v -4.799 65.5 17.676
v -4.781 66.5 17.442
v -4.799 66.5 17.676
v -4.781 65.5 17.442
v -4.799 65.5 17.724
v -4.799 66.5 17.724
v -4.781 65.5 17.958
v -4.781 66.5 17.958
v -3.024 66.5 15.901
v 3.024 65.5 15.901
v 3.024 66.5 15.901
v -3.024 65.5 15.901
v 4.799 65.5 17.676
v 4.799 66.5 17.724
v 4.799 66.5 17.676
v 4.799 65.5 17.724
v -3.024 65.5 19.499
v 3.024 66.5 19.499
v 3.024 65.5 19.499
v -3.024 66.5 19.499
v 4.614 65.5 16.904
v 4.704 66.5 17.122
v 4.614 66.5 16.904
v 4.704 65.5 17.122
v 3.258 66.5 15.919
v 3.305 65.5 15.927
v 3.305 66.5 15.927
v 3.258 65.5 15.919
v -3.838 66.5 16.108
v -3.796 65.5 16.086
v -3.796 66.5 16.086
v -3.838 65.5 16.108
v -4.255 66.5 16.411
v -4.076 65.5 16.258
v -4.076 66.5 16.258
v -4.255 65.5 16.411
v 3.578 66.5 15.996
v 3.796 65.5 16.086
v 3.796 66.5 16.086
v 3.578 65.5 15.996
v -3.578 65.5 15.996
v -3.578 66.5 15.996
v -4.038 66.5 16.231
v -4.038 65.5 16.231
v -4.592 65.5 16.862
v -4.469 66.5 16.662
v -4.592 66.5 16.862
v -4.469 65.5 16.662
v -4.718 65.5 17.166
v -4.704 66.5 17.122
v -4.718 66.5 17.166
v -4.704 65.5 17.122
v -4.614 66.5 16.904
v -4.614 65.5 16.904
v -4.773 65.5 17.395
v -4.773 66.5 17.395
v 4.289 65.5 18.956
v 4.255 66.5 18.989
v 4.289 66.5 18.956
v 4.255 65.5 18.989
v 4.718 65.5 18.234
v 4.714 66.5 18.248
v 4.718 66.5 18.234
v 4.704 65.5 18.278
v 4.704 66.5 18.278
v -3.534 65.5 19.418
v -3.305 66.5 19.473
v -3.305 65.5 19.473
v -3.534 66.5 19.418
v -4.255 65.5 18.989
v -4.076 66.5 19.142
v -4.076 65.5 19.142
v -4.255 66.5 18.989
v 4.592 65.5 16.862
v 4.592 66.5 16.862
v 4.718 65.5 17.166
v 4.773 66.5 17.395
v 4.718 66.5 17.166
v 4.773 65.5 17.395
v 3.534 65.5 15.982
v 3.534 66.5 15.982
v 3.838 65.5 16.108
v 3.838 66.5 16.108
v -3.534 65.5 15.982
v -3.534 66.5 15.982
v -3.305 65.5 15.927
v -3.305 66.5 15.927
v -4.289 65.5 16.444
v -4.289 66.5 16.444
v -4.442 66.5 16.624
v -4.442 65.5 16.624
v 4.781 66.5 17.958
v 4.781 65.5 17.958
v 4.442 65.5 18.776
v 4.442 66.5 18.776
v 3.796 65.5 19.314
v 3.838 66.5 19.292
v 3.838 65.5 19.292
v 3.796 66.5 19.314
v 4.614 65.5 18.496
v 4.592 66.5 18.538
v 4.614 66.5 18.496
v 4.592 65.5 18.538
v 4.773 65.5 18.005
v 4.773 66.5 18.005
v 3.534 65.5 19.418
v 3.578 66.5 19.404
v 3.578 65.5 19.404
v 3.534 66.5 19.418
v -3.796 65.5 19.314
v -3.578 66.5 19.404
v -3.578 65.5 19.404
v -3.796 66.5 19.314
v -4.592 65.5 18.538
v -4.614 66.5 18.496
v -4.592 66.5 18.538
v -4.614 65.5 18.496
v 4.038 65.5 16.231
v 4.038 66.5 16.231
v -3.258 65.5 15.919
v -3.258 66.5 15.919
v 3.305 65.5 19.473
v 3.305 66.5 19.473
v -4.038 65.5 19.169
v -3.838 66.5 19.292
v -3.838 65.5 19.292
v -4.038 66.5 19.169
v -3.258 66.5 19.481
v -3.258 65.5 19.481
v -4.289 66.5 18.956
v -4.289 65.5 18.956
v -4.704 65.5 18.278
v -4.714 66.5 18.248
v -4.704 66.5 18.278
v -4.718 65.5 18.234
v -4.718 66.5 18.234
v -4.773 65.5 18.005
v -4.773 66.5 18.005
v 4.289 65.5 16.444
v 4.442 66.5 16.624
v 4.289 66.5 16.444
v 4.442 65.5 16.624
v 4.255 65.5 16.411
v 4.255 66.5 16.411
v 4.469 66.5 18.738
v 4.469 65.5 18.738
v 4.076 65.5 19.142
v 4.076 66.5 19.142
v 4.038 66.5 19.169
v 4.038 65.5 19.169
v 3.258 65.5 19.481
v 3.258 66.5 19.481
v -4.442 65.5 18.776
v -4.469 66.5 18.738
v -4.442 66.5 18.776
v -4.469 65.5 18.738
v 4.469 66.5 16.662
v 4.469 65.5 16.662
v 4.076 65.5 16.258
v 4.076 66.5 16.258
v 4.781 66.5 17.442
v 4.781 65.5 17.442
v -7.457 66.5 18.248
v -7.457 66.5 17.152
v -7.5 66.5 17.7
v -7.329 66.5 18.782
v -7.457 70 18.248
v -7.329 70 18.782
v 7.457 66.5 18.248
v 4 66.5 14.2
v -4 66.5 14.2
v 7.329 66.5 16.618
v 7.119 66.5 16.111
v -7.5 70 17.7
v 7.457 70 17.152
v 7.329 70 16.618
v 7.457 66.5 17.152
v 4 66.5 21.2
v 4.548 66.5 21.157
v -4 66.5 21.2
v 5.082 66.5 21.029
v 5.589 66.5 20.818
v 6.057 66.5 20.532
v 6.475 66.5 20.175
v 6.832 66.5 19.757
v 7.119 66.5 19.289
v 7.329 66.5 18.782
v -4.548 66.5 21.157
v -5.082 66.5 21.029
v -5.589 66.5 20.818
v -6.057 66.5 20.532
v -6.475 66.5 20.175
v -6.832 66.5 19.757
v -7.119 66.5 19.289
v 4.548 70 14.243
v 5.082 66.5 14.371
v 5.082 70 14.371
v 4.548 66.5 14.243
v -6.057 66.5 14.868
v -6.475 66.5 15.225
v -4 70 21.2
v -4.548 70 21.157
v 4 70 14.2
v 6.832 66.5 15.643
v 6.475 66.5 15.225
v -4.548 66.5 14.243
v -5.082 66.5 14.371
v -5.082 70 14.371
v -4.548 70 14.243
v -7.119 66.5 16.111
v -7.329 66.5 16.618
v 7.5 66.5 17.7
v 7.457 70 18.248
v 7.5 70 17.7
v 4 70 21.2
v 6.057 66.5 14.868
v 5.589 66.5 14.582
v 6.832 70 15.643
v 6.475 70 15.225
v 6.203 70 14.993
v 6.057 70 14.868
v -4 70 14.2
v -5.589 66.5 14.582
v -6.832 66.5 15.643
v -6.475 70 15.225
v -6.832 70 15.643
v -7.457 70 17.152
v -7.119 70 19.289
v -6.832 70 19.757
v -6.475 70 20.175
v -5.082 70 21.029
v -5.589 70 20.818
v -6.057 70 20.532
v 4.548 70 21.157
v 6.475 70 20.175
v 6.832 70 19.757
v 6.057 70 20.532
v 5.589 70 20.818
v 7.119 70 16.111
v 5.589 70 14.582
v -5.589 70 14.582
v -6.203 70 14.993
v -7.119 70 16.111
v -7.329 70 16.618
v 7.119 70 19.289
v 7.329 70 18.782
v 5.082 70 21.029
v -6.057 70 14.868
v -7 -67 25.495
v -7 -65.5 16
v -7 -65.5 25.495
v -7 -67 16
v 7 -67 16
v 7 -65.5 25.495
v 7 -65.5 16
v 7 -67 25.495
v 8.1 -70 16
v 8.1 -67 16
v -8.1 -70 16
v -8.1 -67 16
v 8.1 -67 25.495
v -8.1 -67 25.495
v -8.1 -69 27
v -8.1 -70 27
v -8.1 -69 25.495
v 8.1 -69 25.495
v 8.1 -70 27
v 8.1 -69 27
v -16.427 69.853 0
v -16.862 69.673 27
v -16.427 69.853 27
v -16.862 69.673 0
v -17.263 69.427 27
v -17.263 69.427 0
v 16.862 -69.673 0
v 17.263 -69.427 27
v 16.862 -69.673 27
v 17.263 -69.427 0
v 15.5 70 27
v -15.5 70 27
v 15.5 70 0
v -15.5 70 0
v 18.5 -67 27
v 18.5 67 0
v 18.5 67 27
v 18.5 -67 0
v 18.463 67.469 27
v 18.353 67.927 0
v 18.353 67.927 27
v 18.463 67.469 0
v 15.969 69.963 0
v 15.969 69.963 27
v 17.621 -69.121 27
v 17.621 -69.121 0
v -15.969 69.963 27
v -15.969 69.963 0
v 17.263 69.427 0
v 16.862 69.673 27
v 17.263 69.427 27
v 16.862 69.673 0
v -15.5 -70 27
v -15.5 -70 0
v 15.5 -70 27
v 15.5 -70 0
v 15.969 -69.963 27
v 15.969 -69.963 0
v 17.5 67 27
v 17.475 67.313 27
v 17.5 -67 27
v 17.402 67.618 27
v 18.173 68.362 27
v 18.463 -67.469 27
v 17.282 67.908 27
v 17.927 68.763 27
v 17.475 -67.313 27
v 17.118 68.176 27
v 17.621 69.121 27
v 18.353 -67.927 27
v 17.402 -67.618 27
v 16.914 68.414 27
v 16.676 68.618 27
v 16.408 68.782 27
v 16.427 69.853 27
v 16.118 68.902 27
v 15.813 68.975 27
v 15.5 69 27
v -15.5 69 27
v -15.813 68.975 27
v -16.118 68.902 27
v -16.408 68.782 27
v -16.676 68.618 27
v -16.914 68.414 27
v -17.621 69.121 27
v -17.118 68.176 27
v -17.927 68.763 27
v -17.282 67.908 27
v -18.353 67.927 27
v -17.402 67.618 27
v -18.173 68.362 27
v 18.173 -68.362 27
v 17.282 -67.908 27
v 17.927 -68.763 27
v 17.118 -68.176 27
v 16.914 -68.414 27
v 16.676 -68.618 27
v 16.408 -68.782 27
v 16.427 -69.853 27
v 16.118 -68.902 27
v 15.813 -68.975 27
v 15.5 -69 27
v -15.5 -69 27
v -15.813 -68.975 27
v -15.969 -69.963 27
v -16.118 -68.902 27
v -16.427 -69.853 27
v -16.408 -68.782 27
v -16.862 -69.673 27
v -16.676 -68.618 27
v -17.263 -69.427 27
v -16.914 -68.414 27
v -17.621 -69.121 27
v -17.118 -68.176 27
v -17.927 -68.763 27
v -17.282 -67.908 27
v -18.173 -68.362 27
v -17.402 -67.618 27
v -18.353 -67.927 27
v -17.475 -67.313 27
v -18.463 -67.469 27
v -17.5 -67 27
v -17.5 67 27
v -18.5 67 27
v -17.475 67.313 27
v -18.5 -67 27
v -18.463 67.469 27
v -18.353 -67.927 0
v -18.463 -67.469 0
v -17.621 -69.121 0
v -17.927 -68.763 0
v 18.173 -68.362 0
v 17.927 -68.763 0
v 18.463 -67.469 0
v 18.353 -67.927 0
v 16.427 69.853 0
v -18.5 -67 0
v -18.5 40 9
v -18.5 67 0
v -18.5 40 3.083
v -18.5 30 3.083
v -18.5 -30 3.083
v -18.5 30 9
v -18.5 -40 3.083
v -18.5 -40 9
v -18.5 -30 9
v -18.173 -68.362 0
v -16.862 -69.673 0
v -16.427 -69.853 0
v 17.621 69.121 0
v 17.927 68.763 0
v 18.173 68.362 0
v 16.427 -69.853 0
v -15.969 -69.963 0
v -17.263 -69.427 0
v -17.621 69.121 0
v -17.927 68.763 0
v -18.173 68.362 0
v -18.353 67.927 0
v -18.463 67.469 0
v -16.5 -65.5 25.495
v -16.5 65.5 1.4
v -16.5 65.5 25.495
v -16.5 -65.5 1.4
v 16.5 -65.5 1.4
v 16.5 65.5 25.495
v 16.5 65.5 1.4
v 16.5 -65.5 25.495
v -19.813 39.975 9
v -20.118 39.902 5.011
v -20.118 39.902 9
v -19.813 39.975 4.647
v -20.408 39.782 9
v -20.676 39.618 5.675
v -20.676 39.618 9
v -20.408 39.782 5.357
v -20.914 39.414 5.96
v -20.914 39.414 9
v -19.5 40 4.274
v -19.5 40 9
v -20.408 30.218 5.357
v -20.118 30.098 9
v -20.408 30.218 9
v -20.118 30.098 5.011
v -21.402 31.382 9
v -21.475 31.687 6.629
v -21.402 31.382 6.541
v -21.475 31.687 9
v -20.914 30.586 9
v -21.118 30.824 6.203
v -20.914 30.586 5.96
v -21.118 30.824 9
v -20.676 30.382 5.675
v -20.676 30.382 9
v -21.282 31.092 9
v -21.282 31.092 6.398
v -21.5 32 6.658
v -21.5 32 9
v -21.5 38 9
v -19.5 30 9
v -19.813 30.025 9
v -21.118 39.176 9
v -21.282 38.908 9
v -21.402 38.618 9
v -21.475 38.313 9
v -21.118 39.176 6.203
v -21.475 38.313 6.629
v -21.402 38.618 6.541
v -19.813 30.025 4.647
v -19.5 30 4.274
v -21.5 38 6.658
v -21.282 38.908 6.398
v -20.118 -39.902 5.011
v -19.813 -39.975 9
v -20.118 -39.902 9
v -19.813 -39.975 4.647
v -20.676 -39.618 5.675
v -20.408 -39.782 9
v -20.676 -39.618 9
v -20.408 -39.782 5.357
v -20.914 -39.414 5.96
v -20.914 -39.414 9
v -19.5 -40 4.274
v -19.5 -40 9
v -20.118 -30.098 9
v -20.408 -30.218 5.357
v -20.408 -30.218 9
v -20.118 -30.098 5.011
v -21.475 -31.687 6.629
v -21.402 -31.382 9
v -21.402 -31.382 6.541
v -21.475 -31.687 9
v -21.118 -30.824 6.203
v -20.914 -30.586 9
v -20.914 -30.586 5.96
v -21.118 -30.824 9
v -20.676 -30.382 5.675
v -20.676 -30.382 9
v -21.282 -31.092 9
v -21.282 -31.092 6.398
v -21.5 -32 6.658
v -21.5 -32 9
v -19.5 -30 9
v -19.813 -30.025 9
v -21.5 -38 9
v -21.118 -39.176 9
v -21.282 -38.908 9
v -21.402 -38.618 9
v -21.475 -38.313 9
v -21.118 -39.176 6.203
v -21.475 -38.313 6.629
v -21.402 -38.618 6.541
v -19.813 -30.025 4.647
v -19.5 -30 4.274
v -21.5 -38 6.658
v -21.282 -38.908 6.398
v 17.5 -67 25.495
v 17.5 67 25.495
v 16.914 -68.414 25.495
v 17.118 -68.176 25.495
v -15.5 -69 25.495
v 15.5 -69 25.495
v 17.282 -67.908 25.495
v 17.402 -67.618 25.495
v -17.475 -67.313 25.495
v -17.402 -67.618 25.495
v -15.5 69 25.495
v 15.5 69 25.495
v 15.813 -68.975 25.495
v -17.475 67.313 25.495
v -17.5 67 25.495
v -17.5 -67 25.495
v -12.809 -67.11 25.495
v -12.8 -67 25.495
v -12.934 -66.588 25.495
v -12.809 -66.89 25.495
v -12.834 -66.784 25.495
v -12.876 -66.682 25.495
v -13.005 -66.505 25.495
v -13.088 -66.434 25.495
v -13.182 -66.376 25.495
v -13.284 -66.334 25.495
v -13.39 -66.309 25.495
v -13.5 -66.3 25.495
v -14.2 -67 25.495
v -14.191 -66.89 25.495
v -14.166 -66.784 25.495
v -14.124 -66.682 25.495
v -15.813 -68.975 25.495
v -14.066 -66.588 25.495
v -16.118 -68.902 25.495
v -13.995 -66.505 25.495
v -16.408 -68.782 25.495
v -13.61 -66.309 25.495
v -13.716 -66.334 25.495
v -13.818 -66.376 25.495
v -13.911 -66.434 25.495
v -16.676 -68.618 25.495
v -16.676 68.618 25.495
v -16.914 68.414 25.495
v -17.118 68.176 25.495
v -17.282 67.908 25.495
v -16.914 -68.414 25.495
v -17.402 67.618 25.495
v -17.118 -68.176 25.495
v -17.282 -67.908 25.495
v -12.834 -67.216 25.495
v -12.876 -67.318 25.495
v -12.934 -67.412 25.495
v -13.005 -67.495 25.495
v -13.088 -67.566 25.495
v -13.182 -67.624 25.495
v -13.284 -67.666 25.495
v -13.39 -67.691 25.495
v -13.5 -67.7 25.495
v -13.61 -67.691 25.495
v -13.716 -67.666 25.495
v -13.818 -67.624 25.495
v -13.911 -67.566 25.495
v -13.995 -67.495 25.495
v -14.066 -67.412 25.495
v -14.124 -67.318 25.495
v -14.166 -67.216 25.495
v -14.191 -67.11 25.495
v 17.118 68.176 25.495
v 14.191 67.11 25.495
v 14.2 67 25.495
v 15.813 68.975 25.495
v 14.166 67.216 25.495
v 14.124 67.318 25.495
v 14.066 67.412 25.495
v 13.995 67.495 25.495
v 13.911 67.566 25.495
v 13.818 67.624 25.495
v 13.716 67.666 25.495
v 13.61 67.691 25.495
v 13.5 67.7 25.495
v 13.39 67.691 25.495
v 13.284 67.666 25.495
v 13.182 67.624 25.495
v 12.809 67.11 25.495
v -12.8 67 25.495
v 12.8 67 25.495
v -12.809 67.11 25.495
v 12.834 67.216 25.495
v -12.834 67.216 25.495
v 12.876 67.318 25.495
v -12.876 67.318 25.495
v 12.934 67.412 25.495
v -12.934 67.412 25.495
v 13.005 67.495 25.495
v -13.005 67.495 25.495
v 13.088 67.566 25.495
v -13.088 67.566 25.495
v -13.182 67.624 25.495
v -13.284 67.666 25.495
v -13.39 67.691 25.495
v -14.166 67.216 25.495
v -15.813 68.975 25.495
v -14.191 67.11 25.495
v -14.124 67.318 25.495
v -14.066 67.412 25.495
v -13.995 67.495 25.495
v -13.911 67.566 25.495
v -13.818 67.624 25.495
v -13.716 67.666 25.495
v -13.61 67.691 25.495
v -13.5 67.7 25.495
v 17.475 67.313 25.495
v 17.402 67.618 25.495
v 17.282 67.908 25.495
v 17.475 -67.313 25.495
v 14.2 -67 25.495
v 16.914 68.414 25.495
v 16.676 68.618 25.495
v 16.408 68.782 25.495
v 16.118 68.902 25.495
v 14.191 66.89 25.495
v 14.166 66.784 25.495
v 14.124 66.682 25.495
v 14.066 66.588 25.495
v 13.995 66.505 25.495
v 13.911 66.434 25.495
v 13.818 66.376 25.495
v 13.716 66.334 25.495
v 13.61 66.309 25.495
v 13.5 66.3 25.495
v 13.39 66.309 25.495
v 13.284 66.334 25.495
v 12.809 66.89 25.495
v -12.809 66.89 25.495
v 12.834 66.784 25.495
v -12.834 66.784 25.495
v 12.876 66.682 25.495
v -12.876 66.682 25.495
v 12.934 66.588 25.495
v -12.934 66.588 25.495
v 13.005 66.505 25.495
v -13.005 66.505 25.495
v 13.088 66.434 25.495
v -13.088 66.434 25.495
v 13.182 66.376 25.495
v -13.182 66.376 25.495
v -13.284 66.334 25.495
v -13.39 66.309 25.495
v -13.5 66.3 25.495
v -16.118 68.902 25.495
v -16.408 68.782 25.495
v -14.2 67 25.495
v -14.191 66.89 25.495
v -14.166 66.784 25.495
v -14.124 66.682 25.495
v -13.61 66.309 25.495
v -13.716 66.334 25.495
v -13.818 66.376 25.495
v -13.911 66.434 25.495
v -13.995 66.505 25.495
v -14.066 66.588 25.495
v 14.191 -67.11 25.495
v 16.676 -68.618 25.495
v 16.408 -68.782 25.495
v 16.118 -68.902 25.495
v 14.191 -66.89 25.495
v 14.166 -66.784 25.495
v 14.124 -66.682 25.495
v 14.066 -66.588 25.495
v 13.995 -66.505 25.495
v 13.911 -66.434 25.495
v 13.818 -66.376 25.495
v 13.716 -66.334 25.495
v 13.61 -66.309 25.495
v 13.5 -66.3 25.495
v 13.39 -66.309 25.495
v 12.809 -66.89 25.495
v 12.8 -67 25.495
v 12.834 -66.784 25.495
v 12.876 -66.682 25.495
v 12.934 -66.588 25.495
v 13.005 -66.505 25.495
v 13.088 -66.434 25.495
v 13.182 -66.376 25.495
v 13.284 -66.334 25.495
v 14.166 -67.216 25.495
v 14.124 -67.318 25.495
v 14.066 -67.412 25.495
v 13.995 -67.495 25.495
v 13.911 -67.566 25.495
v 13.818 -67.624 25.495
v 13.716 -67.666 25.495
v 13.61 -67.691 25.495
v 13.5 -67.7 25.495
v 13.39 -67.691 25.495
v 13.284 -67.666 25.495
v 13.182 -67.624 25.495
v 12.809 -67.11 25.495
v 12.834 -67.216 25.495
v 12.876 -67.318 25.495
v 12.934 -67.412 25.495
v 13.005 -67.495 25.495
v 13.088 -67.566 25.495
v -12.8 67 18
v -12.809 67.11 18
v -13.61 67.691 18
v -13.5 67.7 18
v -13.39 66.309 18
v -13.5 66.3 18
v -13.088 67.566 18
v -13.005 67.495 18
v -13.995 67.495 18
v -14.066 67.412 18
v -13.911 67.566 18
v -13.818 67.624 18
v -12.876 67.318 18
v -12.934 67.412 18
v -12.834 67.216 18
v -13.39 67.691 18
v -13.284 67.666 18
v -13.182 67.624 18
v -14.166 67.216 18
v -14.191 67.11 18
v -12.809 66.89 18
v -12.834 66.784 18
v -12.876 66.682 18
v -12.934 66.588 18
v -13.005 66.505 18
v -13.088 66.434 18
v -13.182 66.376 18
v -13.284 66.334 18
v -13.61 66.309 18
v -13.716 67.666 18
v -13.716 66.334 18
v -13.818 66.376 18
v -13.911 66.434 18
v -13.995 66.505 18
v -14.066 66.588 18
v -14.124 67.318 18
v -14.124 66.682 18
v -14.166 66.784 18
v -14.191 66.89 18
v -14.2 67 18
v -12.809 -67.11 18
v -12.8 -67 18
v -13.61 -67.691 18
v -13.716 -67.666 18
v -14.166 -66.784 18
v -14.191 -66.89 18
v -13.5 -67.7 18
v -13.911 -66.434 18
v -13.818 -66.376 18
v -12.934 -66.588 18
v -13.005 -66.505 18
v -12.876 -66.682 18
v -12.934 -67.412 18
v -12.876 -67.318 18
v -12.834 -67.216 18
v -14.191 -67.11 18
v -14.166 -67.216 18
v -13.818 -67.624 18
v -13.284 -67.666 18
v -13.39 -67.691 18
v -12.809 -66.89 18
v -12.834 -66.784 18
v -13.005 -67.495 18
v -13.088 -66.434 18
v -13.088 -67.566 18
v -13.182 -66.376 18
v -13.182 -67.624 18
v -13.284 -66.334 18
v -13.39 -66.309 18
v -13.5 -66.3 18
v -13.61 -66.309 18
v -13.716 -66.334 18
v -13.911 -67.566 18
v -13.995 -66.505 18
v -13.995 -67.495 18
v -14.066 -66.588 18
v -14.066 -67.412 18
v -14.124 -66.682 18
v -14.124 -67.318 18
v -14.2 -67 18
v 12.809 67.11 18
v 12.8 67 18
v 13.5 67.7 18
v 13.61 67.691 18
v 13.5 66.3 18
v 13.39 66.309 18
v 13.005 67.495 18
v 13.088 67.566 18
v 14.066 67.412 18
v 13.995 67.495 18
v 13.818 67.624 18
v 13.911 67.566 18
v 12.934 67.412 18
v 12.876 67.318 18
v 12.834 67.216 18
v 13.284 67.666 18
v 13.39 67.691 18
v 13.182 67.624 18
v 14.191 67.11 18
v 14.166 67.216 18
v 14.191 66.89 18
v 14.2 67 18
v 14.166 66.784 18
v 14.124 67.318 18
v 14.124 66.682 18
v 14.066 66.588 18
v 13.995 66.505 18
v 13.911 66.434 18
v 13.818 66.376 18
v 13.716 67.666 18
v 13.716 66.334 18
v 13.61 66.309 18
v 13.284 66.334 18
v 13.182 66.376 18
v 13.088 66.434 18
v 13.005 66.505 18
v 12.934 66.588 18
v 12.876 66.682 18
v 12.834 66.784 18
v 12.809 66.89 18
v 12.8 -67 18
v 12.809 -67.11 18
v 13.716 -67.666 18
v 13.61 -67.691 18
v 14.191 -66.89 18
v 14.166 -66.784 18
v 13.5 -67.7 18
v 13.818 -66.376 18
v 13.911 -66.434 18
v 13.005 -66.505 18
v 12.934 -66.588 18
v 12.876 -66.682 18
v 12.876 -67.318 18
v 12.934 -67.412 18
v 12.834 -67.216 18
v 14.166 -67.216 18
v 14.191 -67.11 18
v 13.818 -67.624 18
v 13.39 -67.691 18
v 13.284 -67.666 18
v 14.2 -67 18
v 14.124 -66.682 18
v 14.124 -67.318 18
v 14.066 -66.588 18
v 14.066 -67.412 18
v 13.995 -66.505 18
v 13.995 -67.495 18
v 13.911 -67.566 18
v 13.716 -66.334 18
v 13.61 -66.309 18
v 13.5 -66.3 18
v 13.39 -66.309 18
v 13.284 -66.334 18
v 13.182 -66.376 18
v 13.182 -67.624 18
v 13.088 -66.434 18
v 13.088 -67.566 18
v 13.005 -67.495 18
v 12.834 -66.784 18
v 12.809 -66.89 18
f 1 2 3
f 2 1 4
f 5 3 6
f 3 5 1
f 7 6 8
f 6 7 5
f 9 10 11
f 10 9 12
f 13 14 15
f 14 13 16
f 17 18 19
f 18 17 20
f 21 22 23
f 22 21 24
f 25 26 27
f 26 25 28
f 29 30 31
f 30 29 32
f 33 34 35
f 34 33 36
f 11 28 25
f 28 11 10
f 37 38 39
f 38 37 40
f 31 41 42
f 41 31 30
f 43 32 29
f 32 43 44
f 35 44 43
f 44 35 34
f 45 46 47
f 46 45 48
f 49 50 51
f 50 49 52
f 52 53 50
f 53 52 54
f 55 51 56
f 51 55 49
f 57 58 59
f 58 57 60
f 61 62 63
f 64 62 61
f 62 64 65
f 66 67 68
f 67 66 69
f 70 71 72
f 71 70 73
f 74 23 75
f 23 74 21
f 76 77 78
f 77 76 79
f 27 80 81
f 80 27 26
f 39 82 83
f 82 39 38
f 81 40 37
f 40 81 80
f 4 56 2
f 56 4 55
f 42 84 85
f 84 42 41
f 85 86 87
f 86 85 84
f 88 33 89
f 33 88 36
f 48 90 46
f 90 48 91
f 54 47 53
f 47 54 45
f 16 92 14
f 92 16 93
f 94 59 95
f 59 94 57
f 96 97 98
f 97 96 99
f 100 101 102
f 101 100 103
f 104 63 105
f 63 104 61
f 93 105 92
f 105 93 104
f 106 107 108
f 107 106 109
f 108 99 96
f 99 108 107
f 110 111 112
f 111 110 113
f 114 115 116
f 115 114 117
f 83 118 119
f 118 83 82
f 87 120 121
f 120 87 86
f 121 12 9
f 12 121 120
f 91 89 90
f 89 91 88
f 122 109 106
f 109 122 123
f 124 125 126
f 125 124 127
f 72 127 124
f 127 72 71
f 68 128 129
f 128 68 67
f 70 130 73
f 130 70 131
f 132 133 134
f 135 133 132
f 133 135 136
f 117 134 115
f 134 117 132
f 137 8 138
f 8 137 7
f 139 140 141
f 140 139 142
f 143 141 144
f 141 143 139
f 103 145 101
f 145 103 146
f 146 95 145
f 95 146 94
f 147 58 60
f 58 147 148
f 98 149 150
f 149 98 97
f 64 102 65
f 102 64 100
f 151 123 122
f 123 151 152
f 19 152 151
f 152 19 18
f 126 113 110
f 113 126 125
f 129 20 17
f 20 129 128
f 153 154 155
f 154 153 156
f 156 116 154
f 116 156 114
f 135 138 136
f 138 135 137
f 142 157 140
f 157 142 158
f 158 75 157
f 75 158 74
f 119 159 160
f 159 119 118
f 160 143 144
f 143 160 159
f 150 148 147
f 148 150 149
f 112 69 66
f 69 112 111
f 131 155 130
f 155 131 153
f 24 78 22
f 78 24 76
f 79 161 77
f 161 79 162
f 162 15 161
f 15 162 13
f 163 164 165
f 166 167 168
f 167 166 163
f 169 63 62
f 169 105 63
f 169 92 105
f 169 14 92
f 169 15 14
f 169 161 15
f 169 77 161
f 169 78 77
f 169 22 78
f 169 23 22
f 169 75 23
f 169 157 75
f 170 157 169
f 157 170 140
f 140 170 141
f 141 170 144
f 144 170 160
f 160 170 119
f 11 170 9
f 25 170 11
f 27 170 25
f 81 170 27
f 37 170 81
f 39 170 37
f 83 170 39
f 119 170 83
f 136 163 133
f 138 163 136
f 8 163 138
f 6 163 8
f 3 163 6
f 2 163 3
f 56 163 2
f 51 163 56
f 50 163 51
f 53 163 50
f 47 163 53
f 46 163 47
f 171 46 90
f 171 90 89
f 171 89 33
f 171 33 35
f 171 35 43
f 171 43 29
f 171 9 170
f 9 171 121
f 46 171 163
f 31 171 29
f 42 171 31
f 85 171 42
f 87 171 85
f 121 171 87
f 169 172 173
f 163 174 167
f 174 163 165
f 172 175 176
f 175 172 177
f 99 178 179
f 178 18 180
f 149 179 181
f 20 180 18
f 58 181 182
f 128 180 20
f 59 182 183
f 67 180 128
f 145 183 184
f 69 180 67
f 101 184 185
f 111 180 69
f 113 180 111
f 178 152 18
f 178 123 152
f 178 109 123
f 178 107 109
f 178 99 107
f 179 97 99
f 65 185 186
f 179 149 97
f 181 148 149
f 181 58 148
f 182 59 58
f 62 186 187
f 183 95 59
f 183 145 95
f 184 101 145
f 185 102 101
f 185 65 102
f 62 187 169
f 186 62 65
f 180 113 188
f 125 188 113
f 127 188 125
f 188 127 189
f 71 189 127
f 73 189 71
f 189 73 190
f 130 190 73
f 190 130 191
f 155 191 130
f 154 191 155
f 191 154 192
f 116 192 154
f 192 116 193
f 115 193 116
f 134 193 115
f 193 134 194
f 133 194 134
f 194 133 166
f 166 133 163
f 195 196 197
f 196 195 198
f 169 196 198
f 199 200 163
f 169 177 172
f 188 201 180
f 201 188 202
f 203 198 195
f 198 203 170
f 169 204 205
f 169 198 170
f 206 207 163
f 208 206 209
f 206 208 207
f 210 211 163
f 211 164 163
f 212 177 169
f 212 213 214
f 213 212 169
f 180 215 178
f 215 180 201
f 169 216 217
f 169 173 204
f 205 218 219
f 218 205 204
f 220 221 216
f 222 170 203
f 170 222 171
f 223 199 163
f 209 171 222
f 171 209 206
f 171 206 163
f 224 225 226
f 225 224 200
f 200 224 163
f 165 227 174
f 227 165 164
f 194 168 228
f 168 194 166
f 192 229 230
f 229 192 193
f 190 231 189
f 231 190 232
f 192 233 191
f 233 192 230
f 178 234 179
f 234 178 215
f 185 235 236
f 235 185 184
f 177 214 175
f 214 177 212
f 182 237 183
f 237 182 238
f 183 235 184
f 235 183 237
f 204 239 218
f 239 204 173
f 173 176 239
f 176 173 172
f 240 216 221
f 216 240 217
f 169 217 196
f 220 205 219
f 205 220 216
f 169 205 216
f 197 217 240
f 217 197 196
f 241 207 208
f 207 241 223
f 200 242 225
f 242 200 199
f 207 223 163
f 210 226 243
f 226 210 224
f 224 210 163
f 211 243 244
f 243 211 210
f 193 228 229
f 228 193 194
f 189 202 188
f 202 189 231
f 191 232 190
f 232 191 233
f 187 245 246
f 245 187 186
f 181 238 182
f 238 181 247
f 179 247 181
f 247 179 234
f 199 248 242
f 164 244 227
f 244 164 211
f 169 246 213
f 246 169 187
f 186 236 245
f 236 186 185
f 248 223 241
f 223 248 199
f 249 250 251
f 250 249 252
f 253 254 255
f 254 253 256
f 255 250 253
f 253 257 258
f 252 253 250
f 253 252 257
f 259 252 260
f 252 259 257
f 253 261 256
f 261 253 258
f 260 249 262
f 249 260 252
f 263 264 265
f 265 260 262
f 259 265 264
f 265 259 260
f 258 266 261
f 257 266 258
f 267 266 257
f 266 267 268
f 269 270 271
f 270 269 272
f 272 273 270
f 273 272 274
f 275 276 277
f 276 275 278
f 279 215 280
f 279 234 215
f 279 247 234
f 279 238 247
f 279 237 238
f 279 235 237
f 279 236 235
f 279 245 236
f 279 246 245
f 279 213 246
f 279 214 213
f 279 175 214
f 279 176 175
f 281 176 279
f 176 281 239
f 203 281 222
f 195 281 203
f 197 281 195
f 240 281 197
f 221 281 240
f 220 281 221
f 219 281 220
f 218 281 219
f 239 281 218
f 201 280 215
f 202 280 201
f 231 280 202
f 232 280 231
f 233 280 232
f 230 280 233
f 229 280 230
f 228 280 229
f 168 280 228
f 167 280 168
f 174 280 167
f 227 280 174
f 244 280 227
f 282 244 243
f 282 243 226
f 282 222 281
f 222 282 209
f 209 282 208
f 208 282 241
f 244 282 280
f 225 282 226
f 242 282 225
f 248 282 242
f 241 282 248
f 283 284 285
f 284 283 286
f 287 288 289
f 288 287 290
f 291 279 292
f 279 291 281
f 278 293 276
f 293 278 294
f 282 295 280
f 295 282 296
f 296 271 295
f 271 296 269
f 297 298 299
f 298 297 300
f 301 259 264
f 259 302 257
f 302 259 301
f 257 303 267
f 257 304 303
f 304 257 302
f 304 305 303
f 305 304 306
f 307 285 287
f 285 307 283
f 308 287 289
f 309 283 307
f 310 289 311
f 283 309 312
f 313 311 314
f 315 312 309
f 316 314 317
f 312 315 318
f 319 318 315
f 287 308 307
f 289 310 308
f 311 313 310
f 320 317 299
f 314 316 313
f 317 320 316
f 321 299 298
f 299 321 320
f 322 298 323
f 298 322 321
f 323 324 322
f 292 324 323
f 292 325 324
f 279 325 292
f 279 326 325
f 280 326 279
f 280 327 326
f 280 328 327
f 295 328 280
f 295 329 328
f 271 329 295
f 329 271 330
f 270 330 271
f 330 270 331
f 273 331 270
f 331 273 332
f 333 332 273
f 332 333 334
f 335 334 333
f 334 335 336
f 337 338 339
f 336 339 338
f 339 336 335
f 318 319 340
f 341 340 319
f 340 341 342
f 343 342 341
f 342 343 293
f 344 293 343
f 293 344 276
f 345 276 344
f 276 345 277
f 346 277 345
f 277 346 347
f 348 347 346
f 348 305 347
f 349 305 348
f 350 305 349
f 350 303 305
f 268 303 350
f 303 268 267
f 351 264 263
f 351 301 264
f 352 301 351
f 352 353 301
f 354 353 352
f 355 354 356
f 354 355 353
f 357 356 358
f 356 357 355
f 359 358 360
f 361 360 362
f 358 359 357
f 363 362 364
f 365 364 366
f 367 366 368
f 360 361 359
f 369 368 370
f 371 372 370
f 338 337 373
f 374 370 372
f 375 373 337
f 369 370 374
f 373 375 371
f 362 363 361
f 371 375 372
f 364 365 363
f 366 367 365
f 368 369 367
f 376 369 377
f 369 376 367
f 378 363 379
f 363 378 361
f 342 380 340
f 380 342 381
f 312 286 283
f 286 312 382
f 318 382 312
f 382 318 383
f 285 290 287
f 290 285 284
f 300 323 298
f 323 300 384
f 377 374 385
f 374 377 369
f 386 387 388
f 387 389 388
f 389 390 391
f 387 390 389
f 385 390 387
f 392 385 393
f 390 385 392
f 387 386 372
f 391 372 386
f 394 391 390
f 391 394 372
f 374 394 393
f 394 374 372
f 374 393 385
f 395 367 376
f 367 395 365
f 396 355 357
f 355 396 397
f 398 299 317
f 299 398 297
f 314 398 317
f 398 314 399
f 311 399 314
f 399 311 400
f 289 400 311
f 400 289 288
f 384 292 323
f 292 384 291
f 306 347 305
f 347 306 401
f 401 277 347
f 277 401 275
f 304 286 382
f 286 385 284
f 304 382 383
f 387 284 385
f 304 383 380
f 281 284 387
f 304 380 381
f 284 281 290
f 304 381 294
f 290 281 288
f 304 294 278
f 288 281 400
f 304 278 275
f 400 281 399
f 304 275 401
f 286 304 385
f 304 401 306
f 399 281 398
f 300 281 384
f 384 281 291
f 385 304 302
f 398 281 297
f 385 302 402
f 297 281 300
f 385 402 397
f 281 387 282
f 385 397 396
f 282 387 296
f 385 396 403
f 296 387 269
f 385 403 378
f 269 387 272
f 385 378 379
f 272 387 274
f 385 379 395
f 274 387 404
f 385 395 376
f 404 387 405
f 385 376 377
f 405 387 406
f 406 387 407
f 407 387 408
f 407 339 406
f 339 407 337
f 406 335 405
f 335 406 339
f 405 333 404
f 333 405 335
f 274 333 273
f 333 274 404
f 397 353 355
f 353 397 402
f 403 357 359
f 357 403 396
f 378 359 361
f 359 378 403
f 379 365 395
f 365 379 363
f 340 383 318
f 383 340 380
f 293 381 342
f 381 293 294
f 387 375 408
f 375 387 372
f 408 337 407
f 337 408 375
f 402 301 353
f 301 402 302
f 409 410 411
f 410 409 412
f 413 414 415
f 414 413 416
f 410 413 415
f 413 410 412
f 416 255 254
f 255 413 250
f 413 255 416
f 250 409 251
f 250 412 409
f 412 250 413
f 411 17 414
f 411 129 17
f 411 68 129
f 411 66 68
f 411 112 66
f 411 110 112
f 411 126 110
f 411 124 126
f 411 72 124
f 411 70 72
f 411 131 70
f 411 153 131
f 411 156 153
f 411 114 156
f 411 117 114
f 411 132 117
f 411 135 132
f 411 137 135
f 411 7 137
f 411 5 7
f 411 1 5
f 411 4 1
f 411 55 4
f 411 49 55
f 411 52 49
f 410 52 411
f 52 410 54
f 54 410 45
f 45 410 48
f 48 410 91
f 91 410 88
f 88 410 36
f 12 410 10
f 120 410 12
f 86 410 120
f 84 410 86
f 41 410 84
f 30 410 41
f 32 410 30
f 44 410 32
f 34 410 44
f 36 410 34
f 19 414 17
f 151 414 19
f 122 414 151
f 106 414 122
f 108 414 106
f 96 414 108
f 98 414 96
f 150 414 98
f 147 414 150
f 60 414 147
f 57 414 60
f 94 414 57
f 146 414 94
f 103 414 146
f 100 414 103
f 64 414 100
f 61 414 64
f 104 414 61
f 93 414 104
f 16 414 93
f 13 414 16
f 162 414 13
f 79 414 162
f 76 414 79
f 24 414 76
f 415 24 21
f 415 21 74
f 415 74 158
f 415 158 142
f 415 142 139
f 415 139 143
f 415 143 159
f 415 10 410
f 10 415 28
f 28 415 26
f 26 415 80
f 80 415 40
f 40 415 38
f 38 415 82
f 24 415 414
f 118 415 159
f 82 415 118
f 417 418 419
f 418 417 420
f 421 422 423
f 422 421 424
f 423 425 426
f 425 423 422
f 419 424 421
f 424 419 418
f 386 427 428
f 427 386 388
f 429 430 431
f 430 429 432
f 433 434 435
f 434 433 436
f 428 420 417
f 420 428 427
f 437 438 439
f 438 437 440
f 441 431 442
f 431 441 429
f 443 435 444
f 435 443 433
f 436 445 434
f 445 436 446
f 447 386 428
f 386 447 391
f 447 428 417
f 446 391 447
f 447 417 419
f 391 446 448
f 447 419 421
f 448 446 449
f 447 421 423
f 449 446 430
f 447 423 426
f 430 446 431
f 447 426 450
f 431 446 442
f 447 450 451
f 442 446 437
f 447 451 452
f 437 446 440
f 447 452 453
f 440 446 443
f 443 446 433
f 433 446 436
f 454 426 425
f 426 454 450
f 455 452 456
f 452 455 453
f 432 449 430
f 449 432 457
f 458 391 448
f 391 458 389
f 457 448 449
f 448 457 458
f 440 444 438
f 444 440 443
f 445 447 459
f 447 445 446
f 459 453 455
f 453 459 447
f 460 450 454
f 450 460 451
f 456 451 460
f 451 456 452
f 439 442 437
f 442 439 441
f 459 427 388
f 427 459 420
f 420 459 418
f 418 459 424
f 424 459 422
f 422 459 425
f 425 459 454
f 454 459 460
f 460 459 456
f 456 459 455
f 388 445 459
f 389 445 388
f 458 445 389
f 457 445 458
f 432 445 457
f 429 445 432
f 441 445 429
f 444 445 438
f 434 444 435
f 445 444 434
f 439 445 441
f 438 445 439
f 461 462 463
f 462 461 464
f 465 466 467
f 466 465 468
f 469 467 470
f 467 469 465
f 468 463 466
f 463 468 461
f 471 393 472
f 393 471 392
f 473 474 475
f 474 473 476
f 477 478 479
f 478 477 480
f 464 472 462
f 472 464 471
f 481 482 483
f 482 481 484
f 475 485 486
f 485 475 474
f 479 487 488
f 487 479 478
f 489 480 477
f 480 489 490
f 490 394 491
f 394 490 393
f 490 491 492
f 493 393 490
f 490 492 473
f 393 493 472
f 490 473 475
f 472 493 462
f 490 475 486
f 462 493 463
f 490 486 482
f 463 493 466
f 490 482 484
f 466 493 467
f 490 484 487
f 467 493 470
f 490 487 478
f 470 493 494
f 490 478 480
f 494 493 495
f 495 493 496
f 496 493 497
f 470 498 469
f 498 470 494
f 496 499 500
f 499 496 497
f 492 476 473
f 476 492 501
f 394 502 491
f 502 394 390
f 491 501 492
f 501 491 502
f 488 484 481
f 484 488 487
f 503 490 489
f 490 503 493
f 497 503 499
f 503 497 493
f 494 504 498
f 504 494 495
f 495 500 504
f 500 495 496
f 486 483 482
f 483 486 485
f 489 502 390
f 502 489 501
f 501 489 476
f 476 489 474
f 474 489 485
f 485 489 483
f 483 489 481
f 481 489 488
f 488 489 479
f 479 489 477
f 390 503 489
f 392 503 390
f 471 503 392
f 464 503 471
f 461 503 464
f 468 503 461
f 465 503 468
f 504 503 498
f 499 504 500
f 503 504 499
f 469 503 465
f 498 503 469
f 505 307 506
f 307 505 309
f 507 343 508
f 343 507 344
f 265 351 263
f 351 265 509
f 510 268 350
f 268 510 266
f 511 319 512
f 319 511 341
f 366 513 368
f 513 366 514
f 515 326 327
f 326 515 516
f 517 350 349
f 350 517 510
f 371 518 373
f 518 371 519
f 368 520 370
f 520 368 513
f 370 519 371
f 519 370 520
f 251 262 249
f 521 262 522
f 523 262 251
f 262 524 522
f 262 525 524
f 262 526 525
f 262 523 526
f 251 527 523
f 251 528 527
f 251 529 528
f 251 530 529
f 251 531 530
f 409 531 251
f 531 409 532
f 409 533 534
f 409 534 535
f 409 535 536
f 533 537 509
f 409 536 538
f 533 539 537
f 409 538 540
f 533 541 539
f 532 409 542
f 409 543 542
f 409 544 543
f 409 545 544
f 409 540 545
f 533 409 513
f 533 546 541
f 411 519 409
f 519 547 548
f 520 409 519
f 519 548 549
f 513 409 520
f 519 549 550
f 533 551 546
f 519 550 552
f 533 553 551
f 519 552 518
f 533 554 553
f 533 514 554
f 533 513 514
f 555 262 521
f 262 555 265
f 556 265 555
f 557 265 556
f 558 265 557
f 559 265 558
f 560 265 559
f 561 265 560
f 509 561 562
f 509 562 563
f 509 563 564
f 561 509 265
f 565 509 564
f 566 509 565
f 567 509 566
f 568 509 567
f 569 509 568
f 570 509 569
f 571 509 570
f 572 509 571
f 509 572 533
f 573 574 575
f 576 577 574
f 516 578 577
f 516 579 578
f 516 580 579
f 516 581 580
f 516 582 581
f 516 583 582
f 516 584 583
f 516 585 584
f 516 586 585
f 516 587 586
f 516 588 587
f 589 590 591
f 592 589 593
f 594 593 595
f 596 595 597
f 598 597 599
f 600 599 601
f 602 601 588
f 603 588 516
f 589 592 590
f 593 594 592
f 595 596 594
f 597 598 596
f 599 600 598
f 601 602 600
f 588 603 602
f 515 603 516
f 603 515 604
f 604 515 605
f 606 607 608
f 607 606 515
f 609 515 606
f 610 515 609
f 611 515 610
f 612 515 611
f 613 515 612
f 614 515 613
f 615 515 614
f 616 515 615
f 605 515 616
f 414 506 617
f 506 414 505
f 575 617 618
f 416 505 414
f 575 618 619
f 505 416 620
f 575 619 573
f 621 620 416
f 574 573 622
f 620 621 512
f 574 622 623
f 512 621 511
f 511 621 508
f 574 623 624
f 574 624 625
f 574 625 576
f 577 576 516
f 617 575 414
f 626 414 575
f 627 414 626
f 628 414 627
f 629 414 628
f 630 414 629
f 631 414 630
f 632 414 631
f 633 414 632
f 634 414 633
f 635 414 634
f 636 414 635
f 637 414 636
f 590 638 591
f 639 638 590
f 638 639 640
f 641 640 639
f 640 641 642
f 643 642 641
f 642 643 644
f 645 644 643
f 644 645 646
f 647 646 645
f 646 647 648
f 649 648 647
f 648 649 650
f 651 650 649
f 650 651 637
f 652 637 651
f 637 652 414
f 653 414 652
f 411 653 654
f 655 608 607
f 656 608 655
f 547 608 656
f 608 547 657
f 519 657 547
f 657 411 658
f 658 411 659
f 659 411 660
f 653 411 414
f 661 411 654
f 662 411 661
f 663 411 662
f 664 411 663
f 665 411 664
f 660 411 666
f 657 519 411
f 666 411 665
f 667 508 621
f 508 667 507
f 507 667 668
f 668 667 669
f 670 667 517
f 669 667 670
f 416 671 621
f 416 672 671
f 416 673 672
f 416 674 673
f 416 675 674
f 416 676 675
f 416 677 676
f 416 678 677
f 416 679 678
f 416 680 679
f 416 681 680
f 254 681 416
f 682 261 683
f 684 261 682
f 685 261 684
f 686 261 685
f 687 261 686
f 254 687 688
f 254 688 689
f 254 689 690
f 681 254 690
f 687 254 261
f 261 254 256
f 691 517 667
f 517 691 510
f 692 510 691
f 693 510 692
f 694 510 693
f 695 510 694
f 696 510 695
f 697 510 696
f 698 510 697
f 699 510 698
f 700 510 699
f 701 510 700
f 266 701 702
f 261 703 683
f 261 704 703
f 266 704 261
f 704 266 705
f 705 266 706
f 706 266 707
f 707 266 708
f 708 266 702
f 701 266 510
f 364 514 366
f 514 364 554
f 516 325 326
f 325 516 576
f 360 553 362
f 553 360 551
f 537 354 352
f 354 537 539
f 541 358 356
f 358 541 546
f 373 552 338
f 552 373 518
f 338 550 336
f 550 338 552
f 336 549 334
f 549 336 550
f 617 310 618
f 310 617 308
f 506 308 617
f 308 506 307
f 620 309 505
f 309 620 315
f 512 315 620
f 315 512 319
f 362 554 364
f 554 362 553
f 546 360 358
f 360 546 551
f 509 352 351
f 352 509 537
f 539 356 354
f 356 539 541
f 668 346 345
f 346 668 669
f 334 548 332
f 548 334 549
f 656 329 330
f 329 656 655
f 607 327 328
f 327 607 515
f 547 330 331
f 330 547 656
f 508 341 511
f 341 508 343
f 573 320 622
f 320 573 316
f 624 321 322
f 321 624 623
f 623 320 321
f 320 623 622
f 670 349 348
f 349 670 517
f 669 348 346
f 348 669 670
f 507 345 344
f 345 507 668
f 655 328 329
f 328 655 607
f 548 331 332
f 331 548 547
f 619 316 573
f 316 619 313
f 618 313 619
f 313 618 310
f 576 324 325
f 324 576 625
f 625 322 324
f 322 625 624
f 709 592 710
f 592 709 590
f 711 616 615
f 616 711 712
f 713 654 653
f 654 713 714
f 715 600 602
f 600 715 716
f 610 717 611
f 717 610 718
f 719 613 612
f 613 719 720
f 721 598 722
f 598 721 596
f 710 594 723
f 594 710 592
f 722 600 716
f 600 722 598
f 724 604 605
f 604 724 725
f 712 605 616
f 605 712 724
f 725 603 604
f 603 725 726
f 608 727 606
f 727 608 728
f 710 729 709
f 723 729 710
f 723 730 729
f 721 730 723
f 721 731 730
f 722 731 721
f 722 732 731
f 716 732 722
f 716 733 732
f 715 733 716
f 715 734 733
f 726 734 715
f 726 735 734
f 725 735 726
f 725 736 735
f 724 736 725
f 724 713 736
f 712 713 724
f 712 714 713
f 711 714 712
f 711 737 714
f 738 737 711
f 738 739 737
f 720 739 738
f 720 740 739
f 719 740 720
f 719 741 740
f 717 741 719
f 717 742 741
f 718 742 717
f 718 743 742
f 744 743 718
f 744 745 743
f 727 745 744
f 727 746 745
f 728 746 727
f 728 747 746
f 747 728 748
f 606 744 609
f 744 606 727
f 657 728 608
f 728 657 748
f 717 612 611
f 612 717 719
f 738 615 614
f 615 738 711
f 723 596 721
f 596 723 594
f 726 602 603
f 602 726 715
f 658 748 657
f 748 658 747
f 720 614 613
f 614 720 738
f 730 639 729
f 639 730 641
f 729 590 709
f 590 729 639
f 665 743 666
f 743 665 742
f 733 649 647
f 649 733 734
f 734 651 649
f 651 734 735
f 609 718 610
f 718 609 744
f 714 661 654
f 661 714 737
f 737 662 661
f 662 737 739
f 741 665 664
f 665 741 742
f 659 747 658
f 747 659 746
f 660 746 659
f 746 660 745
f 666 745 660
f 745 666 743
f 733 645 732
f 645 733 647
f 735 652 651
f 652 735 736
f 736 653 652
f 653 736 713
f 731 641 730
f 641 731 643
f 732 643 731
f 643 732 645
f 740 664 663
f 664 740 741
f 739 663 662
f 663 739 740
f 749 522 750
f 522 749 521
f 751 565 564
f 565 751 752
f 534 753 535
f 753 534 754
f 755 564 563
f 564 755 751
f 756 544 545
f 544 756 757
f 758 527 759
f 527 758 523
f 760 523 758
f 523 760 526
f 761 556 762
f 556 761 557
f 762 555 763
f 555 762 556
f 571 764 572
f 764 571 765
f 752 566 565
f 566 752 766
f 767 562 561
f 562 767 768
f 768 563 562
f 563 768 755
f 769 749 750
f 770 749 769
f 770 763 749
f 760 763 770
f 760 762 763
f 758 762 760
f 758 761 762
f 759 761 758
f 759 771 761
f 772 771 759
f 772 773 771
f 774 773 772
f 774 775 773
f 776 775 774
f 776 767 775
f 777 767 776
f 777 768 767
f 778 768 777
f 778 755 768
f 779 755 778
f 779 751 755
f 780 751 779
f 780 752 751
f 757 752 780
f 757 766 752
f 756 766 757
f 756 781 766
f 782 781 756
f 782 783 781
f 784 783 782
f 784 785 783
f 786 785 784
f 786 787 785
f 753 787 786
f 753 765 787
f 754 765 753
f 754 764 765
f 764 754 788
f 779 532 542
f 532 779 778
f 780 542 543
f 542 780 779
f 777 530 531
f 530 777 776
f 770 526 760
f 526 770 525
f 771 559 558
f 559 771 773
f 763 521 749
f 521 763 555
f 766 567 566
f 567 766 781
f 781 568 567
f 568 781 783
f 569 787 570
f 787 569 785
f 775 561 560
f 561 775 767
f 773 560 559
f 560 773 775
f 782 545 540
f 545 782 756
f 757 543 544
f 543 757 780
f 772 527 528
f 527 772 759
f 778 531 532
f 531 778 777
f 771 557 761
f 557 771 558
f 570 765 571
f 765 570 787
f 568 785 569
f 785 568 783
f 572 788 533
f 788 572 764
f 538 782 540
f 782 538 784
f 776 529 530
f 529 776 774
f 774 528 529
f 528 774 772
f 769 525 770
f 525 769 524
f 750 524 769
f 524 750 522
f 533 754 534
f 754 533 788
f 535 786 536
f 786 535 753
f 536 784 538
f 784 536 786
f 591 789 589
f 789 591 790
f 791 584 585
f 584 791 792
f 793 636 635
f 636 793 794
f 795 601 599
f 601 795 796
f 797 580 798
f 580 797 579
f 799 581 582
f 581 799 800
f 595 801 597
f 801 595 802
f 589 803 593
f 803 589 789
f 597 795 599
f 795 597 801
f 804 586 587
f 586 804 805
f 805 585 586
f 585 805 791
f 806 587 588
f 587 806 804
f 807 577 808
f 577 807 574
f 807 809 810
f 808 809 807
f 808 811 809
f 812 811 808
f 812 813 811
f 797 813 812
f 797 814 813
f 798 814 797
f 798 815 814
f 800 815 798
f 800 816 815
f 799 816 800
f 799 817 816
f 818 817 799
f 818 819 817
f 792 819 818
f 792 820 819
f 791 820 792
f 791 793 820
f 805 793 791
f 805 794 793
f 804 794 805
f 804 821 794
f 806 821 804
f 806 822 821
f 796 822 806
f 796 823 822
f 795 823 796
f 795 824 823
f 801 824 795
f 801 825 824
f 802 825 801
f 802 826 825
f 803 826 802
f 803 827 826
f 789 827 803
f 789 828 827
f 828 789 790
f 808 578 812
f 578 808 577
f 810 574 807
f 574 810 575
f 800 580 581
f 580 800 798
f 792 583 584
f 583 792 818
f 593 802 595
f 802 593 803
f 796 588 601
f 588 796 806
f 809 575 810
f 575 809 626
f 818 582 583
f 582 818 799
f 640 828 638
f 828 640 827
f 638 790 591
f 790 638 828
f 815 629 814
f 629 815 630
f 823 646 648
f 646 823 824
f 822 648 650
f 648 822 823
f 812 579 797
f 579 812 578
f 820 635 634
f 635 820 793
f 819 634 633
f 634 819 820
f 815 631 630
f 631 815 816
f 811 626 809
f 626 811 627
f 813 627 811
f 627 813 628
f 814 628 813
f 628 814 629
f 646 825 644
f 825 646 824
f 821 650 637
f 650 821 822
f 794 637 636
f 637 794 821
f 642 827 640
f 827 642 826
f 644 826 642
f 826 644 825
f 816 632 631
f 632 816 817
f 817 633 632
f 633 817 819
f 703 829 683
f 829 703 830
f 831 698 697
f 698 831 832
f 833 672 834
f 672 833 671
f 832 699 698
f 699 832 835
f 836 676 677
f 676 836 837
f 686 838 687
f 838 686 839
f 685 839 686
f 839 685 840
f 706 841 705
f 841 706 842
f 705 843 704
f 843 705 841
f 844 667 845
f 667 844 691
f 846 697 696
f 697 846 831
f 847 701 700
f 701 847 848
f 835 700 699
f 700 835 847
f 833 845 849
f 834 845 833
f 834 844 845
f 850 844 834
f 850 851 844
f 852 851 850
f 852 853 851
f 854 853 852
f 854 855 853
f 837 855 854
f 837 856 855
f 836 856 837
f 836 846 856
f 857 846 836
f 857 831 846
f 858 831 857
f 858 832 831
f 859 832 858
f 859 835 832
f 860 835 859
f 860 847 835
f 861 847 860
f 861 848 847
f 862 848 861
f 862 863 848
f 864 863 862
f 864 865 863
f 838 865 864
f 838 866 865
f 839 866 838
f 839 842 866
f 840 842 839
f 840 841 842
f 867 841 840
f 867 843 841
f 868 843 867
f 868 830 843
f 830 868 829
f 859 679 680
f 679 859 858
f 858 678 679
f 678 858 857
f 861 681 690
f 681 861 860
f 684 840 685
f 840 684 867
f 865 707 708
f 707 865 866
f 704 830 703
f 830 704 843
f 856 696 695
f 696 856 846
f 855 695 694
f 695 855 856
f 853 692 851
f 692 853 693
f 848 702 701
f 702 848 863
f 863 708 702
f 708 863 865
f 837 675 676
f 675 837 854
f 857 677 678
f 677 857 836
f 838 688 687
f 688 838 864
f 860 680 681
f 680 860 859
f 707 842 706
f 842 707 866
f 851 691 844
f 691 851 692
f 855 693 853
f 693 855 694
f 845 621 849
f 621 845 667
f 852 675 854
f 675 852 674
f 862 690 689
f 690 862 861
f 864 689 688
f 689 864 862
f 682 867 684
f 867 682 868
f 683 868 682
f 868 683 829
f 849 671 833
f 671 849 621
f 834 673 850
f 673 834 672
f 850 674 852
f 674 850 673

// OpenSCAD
// file: charging_board_typec.scad
USB_TYPEC_BOARD_X = 17.1;
USB_TYPEC_BOARD_Y = 28.1;
USB_TYPEC_BOARD_Z = 1.0;

module USB_TYPEC_BOARD(diff=false) {
  translate([0, -USB_TYPEC_BOARD_Y/2, 0])   
  linear_extrude(height=USB_TYPEC_BOARD_Z, center=!true, convexity=10, twist=0) 
  square(size=[USB_TYPEC_BOARD_X, USB_TYPEC_BOARD_Y], center=true);

  translate([0, 1.5, USB_TYPEC_BOARD_Z])
  translate([0, -7.3, 3/2])
  rotate([-90, 0, 0]) 
  linear_extrude(height=diff ? 20 : 7.3, center=!true, convexity=10, twist=0)
  hull(){
    offset(r= diff ? 0.3 : 0)
    mirror_x()
    translate([9/2-3/2, 0, 0])
    circle(d=3);
  }
}
// file: scad-utils/mirror.scad
// Copyright (c) 2013 Oskar Linde. All rights reserved.
// License: BSD
//
// This library contains simple mirroring functions
//
// mirror_x()
// mirror_y()
// mirror_z()


module mirror_x() {
  union() {
    child();
    scale([-1,1,1]) child();
  }
}

module mirror_y() {
  union() {
    child();
    scale([1,-1,1]) child();
  }
}

module mirror_z() {
  union() {
    child();
    scale([1,1,-1]) child();
  }
}
// file: scad-utils/morphology.scad
// Copyright (c) 2013 Oskar Linde. All rights reserved.
// License: BSD
//
// This library contains basic 2D morphology operations
//
// outset(d=1)            - creates a polygon at an offset d outside a 2D shape
// inset(d=1)             - creates a polygon at an offset d inside a 2D shape
// fillet(r=1)            - adds fillets of radius r to all concave corners of a 2D shape
// rounding(r=1)          - adds rounding to all convex corners of a 2D shape
// shell(d,center=false)  - makes a shell of width d along the edge of a 2D shape
//                        - positive values of d places the shell on the outside
//                        - negative values of d places the shell on the inside
//                        - center=true and positive d places the shell centered on the edge

module outset(d=1) {
	// Bug workaround for older OpenSCAD versions
	if (version_num() < 20130424) render() outset_extruded(d) children();
	else minkowski() {
		circle(r=d);
		children();
	}
}

module outset_extruded(d=1) {
   projection(cut=true) minkowski() {
        cylinder(r=d);
        linear_extrude(center=true) children();
   }
}

module inset(d=1) {
	 render() inverse() outset(d=d) inverse() children();
}

module fillet(r=1) {
	inset(d=r) render() outset(d=r) children();
}

module rounding(r=1) {
	outset(d=r) inset(d=r) children();
}

module shell(d,center=false) {
	if (center && d > 0) {
		difference() {
			outset(d=d/2) children();
			inset(d=d/2) children();
		}
	}
	if (!center && d > 0) {
		difference() {
			outset(d=d) children();
			children();
		}
	}
	if (!center && d < 0) {
		difference() {
			children();
			inset(d=-d) children();
		}
	}
	if (d == 0) children();
}


// Below are for internal use only

module inverse() {
	difference() {
		square(1e5,center=true);
		children();
	}
}


// TEST CODE

use <mirror.scad>

module arrow(l=1,w=.6,t=0.15) {
	mirror_y() polygon([[0,0],[l,0],[l-w/2,w/2],[l-w/2-sqrt(2)*t,w/2],[l-t/2-sqrt(2)*t,t/2],[0,t/2]]);
}

module shape() {
	polygon([[0,0],[1,0],[1.5,1],[2.5,1],[2,-1],[0,-1]]);
}

if(0) assign($fn=32) {

	for (p = [0:10*3-1]) assign(o=floor(p/3)) {
		translate([(p%3)*2.5,-o*3]) {
			//%if (p % 3 == 1) translate([0,0,1]) shape();
			if (p % 3 == 0) shape();
			if (p % 3 == 1) translate([0.6,0]) arrow();
			if (p % 3 == 2) {
				if (o == 0) inset(d=0.3) shape();
				if (o == 1) outset(d=0.3) shape();
				if (o == 2) rounding(r=0.3) shape();
				if (o == 3) fillet(r=0.3) shape();
				if (o == 4) shell(d=0.3) shape();
				if (o == 5) shell(d=-0.3) shape();
				if (o == 6) shell(d=0.3,center=true) shape();
				if (o == 7) rounding(r=0.3) fillet(r=0.3) shape();
				if (o == 8) shell(d=0.3,center=true) fillet(r=0.3) rounding(r=0.3) shape();
				if (o == 9) shell(d=-0.3) fillet(r=0.3) rounding(r=0.3) shape();
			}
		}
	}
}
// file: minidenko-case-base.scad
$fn=40;

include <scad-utils/morphology.scad>
include <scad-utils/mirror.scad>

// include <charging_board_microb.scad>
include <charging_board_typec.scad>

LED_X=32;
LED_Y=130;
LED_Z=13.0;

BODY_X=LED_X+5;
BODY_Y=LED_Y+10;
// BODY_BOTTOM_Z = 1.4;
BODY_BOTTOM_Z = 0.3;
BODY_Z=LED_Z+11+0.8*2 + BODY_BOTTOM_Z;

STAND_X=3;

BACKPANEL_Z=1.2;

// LED Matrix
*%translate([0, 0, LED_Z/2 + BODY_BOTTOM_Z])
color("red")
cube(size=[LED_X, LED_Y, LED_Z], center=true);

module body(){
  difference(){
    linear_extrude(height=BODY_Z, center=!true, convexity=10, twist=0)
    rounding(r=3)
    square(size=[BODY_X, BODY_Y], center=true);

    // inner space
    translate([0, 0, (BODY_Z)/2 + BODY_BOTTOM_Z]) 
    cube(size=[LED_X + 1, LED_Y + 1, BODY_Z], center=true);

    // edge();
    // USB
    translate([0, LED_Y/2, LED_Z + BODY_BOTTOM_Z + 0.8]) {
      USB_TYPEC_BOARD(diff=true);
      // USB PLUG
      translate([0, 1.5, 0])
      translate([0, 0, 5/2])  
      rotate([-90, 0, 0]) 
      linear_extrude(height=10, center=!true, convexity=10, twist=0)
      hull(){
        mirror_x()
        translate([4, 0, 0])
        circle(d=7);
      }
    }

    // sw
    translate([0, -BODY_Y/2+3, LED_Z + BODY_BOTTOM_Z +  12/2 + 0.8 * 2]) {
      translate([0, 15/2, 0])
      cube(size=[14, 15, 12], center=true);

      translate([0, -5/2, 0]) 
      cube(size=[15.2+1, 5, 12], center=true);
    }


  }
  // stand
  mirror_y()
  translate([0, BODY_Y/4, 3]) 
  translate([-BODY_X/2, 0, 0]) 
  difference(){
    linear_extrude(height=6, center=!true, convexity=10, twist=0)
    difference(){
      rounding(r=2)
      square(size=[STAND_X*2, 10], center=true);

      translate([STAND_X/2, 0, 0]) 
      square(size=[STAND_X, 10], center=true);
    }
    translate([-7*cos(50), 0, 0]) 
    rotate([0, 50, 0]) 
    cube(size=[7, 10, 7], center=true);

  }

}

// screws
module screws(d=1.4) {
  mirror_x()
  mirror_y()
  translate([-(BODY_X/2 - 5), BODY_Y/2 - 3, BODY_Z-9])
  cylinder(d=d, h=10, center=!true);
}


module backPanel(inset=0, h=1.2) {
  difference(){
    translate([0, 0, BODY_Z]) 
    hull() {
      linear_extrude(height=0.01, center=true, convexity=10, twist=0)
      inset(d=1+inset)
      rounding(r=3)
      square(size=[BODY_X, BODY_Y], center=true);

      translate([0, 0, -h]) 
      linear_extrude(height=0.01, center=true, convexity=10, twist=0)
      inset(d=1+inset)
      rounding(r=3)
      square(size=[BODY_X, BODY_Y], center=true);  
    }

    // power switch
    translate([0, -BODY_Y/2+3, LED_Z + BODY_BOTTOM_Z +  12/2 + 0.8]) {
      translate([0, -5/2, 0]) 
      cube(size=[15.2+1, 5, 12], center=true);
    }
  }
}
// main file
$fn=40;

include <minidenko-case-base.scad>

BODY_BOTTOM_Z = 1.4;

difference(){
  body();
  backPanel(h=1.5);
  screws(1.4);
}
